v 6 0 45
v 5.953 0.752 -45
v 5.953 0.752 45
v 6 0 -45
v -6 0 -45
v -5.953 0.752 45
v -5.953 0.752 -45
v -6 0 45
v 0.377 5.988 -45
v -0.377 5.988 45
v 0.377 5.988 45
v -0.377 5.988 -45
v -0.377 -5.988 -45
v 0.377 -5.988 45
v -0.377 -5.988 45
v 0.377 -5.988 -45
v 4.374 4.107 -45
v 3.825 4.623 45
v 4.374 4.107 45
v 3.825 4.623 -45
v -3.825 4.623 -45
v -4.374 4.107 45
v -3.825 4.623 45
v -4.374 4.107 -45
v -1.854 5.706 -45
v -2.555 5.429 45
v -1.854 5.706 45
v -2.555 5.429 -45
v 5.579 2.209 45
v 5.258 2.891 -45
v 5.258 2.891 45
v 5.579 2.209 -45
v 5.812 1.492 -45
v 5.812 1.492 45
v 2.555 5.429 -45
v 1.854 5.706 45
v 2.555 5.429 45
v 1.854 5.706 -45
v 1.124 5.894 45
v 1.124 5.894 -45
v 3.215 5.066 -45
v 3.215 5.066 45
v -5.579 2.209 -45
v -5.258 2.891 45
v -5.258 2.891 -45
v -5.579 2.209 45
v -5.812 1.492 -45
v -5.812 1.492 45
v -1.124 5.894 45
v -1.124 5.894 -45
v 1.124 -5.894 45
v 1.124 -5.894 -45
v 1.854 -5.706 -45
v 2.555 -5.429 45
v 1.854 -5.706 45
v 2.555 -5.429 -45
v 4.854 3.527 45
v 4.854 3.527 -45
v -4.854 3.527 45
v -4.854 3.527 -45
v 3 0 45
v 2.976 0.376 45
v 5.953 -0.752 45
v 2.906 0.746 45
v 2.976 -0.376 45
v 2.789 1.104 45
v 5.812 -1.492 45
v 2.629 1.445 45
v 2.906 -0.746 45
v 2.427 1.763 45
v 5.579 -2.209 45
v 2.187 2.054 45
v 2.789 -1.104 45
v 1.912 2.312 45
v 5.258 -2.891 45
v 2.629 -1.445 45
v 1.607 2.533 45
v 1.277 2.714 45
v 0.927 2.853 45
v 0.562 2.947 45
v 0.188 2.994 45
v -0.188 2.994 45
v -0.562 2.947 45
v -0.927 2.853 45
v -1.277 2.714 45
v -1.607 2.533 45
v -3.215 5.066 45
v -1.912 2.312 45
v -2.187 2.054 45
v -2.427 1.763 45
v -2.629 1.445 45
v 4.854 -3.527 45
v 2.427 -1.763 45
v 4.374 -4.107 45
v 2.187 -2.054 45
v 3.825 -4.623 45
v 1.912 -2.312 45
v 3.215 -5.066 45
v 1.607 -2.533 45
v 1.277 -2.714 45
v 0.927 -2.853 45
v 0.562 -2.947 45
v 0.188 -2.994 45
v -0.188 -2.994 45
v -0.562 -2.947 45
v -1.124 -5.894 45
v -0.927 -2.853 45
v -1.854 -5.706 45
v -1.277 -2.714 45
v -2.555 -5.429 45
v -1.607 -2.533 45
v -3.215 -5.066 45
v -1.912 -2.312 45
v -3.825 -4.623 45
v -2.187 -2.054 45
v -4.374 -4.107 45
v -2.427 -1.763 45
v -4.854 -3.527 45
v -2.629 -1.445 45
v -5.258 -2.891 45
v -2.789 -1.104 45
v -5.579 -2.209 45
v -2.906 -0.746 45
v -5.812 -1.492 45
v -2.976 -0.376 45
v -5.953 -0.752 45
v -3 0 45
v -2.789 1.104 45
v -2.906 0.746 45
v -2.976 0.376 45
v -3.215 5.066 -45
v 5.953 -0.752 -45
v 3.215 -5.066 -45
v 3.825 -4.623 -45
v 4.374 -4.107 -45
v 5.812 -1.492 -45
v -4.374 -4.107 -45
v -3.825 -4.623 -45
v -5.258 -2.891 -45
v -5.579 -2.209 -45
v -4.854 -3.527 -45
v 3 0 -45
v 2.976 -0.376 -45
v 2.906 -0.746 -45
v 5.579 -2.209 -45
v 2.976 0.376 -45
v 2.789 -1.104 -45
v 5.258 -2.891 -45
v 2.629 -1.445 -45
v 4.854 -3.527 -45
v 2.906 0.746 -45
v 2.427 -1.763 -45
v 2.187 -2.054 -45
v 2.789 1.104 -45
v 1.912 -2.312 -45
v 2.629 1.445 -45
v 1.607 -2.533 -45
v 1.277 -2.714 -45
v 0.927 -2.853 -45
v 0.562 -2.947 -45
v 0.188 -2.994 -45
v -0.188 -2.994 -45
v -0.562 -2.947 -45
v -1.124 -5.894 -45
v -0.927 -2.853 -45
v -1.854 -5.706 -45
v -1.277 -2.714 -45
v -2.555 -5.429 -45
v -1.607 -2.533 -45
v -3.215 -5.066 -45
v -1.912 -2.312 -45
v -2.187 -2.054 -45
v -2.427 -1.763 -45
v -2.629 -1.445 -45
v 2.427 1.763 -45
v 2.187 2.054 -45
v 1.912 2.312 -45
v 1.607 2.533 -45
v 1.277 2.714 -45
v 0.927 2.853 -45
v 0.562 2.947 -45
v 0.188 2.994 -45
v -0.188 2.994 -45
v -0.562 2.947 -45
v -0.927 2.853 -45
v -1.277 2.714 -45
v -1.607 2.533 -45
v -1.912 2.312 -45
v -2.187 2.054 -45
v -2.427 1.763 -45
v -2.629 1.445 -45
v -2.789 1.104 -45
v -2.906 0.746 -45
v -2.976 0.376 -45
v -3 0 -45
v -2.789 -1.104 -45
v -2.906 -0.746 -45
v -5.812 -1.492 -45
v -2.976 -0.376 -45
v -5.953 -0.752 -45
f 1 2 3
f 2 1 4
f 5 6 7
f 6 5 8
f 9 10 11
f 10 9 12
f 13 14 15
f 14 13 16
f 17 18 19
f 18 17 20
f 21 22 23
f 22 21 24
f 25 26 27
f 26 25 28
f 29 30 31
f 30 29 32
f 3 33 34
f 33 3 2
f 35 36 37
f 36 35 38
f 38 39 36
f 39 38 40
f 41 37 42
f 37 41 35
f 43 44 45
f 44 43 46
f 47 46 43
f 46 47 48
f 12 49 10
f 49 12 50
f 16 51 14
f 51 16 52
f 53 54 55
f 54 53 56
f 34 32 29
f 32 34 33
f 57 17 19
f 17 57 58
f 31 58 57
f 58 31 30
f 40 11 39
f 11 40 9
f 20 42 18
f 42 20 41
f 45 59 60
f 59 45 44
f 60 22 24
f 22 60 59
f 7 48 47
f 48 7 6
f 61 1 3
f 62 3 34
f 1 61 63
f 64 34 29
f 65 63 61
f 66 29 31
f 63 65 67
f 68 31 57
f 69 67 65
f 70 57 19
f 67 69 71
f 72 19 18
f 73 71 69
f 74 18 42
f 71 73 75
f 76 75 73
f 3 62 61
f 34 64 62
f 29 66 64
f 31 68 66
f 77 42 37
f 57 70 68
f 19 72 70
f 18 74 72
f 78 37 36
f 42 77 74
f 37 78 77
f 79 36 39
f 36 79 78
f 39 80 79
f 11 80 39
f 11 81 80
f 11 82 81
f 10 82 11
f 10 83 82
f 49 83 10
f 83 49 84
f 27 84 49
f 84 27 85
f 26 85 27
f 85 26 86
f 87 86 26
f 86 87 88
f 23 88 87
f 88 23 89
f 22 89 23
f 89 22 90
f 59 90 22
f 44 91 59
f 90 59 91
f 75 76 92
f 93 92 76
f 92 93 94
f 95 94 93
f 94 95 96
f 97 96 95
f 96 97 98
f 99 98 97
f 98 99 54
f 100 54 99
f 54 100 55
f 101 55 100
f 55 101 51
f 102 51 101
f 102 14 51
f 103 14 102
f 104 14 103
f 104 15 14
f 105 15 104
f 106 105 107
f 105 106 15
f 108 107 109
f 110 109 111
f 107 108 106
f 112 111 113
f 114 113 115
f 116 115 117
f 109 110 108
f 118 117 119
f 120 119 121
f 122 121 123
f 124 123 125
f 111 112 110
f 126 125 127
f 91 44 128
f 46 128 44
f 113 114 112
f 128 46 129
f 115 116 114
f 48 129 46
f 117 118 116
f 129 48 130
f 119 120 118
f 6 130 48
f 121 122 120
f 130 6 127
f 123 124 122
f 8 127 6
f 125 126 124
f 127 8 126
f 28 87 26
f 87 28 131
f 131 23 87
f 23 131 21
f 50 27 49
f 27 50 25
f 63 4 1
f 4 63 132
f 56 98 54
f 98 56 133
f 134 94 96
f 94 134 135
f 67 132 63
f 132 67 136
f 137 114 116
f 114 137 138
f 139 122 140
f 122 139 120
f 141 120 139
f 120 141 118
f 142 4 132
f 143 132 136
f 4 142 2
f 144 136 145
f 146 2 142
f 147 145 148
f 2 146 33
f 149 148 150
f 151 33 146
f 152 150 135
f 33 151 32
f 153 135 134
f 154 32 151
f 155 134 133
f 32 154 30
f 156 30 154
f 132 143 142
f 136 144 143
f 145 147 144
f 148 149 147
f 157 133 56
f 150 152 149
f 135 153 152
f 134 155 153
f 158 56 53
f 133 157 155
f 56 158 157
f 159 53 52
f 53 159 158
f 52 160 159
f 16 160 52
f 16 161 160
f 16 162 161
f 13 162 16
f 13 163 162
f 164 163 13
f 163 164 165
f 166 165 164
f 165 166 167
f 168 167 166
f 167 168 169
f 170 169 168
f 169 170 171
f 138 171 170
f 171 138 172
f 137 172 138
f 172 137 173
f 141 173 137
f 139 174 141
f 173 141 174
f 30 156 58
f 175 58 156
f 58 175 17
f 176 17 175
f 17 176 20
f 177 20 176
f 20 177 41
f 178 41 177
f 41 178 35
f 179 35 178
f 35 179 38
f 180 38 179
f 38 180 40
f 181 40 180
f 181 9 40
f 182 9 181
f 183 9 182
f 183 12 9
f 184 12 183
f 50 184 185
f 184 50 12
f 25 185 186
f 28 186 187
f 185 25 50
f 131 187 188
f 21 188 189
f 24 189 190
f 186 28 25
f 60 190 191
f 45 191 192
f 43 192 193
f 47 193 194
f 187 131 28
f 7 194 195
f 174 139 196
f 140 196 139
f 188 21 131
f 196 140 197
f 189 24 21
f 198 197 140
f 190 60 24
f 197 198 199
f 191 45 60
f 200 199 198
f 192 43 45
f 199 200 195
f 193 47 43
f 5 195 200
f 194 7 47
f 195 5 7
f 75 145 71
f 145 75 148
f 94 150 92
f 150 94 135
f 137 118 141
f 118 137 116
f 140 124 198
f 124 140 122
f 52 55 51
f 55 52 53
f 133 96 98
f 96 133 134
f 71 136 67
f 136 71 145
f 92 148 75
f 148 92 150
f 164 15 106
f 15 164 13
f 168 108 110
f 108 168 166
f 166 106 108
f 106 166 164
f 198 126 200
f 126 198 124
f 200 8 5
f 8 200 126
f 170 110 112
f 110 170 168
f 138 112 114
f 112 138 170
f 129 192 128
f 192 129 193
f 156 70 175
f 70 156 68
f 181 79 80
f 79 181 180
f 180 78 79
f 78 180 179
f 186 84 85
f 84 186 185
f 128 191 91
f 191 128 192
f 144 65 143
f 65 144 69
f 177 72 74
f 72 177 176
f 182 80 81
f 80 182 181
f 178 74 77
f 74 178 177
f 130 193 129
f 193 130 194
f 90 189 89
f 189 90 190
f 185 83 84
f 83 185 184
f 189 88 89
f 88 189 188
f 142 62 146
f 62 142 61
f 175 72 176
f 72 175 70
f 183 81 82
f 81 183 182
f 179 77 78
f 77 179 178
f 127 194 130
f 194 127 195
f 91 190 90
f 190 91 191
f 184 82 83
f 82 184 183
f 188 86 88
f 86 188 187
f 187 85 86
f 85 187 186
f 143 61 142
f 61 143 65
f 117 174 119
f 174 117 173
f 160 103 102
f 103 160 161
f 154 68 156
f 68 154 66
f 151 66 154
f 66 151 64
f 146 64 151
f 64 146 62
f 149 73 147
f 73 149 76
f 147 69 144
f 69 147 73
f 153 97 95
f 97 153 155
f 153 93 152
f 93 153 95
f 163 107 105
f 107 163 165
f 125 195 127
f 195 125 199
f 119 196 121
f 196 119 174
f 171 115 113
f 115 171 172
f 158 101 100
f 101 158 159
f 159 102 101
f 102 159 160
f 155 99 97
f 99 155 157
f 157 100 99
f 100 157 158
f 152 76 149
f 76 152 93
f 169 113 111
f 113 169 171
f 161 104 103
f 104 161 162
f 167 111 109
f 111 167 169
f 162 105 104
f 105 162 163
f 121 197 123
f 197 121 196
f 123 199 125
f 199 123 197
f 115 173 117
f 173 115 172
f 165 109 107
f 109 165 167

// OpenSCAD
$fn = 50;


difference() {
	union() {
		translate(v = [0, 0, -45.0000000000]) {
			cylinder(h = 90, r = 6.0000000000);
		}
	}
	union() {
		translate(v = [0, 0, -100.0000000000]) {
			cylinder(h = 200, r = 3);
		}
	}
}
